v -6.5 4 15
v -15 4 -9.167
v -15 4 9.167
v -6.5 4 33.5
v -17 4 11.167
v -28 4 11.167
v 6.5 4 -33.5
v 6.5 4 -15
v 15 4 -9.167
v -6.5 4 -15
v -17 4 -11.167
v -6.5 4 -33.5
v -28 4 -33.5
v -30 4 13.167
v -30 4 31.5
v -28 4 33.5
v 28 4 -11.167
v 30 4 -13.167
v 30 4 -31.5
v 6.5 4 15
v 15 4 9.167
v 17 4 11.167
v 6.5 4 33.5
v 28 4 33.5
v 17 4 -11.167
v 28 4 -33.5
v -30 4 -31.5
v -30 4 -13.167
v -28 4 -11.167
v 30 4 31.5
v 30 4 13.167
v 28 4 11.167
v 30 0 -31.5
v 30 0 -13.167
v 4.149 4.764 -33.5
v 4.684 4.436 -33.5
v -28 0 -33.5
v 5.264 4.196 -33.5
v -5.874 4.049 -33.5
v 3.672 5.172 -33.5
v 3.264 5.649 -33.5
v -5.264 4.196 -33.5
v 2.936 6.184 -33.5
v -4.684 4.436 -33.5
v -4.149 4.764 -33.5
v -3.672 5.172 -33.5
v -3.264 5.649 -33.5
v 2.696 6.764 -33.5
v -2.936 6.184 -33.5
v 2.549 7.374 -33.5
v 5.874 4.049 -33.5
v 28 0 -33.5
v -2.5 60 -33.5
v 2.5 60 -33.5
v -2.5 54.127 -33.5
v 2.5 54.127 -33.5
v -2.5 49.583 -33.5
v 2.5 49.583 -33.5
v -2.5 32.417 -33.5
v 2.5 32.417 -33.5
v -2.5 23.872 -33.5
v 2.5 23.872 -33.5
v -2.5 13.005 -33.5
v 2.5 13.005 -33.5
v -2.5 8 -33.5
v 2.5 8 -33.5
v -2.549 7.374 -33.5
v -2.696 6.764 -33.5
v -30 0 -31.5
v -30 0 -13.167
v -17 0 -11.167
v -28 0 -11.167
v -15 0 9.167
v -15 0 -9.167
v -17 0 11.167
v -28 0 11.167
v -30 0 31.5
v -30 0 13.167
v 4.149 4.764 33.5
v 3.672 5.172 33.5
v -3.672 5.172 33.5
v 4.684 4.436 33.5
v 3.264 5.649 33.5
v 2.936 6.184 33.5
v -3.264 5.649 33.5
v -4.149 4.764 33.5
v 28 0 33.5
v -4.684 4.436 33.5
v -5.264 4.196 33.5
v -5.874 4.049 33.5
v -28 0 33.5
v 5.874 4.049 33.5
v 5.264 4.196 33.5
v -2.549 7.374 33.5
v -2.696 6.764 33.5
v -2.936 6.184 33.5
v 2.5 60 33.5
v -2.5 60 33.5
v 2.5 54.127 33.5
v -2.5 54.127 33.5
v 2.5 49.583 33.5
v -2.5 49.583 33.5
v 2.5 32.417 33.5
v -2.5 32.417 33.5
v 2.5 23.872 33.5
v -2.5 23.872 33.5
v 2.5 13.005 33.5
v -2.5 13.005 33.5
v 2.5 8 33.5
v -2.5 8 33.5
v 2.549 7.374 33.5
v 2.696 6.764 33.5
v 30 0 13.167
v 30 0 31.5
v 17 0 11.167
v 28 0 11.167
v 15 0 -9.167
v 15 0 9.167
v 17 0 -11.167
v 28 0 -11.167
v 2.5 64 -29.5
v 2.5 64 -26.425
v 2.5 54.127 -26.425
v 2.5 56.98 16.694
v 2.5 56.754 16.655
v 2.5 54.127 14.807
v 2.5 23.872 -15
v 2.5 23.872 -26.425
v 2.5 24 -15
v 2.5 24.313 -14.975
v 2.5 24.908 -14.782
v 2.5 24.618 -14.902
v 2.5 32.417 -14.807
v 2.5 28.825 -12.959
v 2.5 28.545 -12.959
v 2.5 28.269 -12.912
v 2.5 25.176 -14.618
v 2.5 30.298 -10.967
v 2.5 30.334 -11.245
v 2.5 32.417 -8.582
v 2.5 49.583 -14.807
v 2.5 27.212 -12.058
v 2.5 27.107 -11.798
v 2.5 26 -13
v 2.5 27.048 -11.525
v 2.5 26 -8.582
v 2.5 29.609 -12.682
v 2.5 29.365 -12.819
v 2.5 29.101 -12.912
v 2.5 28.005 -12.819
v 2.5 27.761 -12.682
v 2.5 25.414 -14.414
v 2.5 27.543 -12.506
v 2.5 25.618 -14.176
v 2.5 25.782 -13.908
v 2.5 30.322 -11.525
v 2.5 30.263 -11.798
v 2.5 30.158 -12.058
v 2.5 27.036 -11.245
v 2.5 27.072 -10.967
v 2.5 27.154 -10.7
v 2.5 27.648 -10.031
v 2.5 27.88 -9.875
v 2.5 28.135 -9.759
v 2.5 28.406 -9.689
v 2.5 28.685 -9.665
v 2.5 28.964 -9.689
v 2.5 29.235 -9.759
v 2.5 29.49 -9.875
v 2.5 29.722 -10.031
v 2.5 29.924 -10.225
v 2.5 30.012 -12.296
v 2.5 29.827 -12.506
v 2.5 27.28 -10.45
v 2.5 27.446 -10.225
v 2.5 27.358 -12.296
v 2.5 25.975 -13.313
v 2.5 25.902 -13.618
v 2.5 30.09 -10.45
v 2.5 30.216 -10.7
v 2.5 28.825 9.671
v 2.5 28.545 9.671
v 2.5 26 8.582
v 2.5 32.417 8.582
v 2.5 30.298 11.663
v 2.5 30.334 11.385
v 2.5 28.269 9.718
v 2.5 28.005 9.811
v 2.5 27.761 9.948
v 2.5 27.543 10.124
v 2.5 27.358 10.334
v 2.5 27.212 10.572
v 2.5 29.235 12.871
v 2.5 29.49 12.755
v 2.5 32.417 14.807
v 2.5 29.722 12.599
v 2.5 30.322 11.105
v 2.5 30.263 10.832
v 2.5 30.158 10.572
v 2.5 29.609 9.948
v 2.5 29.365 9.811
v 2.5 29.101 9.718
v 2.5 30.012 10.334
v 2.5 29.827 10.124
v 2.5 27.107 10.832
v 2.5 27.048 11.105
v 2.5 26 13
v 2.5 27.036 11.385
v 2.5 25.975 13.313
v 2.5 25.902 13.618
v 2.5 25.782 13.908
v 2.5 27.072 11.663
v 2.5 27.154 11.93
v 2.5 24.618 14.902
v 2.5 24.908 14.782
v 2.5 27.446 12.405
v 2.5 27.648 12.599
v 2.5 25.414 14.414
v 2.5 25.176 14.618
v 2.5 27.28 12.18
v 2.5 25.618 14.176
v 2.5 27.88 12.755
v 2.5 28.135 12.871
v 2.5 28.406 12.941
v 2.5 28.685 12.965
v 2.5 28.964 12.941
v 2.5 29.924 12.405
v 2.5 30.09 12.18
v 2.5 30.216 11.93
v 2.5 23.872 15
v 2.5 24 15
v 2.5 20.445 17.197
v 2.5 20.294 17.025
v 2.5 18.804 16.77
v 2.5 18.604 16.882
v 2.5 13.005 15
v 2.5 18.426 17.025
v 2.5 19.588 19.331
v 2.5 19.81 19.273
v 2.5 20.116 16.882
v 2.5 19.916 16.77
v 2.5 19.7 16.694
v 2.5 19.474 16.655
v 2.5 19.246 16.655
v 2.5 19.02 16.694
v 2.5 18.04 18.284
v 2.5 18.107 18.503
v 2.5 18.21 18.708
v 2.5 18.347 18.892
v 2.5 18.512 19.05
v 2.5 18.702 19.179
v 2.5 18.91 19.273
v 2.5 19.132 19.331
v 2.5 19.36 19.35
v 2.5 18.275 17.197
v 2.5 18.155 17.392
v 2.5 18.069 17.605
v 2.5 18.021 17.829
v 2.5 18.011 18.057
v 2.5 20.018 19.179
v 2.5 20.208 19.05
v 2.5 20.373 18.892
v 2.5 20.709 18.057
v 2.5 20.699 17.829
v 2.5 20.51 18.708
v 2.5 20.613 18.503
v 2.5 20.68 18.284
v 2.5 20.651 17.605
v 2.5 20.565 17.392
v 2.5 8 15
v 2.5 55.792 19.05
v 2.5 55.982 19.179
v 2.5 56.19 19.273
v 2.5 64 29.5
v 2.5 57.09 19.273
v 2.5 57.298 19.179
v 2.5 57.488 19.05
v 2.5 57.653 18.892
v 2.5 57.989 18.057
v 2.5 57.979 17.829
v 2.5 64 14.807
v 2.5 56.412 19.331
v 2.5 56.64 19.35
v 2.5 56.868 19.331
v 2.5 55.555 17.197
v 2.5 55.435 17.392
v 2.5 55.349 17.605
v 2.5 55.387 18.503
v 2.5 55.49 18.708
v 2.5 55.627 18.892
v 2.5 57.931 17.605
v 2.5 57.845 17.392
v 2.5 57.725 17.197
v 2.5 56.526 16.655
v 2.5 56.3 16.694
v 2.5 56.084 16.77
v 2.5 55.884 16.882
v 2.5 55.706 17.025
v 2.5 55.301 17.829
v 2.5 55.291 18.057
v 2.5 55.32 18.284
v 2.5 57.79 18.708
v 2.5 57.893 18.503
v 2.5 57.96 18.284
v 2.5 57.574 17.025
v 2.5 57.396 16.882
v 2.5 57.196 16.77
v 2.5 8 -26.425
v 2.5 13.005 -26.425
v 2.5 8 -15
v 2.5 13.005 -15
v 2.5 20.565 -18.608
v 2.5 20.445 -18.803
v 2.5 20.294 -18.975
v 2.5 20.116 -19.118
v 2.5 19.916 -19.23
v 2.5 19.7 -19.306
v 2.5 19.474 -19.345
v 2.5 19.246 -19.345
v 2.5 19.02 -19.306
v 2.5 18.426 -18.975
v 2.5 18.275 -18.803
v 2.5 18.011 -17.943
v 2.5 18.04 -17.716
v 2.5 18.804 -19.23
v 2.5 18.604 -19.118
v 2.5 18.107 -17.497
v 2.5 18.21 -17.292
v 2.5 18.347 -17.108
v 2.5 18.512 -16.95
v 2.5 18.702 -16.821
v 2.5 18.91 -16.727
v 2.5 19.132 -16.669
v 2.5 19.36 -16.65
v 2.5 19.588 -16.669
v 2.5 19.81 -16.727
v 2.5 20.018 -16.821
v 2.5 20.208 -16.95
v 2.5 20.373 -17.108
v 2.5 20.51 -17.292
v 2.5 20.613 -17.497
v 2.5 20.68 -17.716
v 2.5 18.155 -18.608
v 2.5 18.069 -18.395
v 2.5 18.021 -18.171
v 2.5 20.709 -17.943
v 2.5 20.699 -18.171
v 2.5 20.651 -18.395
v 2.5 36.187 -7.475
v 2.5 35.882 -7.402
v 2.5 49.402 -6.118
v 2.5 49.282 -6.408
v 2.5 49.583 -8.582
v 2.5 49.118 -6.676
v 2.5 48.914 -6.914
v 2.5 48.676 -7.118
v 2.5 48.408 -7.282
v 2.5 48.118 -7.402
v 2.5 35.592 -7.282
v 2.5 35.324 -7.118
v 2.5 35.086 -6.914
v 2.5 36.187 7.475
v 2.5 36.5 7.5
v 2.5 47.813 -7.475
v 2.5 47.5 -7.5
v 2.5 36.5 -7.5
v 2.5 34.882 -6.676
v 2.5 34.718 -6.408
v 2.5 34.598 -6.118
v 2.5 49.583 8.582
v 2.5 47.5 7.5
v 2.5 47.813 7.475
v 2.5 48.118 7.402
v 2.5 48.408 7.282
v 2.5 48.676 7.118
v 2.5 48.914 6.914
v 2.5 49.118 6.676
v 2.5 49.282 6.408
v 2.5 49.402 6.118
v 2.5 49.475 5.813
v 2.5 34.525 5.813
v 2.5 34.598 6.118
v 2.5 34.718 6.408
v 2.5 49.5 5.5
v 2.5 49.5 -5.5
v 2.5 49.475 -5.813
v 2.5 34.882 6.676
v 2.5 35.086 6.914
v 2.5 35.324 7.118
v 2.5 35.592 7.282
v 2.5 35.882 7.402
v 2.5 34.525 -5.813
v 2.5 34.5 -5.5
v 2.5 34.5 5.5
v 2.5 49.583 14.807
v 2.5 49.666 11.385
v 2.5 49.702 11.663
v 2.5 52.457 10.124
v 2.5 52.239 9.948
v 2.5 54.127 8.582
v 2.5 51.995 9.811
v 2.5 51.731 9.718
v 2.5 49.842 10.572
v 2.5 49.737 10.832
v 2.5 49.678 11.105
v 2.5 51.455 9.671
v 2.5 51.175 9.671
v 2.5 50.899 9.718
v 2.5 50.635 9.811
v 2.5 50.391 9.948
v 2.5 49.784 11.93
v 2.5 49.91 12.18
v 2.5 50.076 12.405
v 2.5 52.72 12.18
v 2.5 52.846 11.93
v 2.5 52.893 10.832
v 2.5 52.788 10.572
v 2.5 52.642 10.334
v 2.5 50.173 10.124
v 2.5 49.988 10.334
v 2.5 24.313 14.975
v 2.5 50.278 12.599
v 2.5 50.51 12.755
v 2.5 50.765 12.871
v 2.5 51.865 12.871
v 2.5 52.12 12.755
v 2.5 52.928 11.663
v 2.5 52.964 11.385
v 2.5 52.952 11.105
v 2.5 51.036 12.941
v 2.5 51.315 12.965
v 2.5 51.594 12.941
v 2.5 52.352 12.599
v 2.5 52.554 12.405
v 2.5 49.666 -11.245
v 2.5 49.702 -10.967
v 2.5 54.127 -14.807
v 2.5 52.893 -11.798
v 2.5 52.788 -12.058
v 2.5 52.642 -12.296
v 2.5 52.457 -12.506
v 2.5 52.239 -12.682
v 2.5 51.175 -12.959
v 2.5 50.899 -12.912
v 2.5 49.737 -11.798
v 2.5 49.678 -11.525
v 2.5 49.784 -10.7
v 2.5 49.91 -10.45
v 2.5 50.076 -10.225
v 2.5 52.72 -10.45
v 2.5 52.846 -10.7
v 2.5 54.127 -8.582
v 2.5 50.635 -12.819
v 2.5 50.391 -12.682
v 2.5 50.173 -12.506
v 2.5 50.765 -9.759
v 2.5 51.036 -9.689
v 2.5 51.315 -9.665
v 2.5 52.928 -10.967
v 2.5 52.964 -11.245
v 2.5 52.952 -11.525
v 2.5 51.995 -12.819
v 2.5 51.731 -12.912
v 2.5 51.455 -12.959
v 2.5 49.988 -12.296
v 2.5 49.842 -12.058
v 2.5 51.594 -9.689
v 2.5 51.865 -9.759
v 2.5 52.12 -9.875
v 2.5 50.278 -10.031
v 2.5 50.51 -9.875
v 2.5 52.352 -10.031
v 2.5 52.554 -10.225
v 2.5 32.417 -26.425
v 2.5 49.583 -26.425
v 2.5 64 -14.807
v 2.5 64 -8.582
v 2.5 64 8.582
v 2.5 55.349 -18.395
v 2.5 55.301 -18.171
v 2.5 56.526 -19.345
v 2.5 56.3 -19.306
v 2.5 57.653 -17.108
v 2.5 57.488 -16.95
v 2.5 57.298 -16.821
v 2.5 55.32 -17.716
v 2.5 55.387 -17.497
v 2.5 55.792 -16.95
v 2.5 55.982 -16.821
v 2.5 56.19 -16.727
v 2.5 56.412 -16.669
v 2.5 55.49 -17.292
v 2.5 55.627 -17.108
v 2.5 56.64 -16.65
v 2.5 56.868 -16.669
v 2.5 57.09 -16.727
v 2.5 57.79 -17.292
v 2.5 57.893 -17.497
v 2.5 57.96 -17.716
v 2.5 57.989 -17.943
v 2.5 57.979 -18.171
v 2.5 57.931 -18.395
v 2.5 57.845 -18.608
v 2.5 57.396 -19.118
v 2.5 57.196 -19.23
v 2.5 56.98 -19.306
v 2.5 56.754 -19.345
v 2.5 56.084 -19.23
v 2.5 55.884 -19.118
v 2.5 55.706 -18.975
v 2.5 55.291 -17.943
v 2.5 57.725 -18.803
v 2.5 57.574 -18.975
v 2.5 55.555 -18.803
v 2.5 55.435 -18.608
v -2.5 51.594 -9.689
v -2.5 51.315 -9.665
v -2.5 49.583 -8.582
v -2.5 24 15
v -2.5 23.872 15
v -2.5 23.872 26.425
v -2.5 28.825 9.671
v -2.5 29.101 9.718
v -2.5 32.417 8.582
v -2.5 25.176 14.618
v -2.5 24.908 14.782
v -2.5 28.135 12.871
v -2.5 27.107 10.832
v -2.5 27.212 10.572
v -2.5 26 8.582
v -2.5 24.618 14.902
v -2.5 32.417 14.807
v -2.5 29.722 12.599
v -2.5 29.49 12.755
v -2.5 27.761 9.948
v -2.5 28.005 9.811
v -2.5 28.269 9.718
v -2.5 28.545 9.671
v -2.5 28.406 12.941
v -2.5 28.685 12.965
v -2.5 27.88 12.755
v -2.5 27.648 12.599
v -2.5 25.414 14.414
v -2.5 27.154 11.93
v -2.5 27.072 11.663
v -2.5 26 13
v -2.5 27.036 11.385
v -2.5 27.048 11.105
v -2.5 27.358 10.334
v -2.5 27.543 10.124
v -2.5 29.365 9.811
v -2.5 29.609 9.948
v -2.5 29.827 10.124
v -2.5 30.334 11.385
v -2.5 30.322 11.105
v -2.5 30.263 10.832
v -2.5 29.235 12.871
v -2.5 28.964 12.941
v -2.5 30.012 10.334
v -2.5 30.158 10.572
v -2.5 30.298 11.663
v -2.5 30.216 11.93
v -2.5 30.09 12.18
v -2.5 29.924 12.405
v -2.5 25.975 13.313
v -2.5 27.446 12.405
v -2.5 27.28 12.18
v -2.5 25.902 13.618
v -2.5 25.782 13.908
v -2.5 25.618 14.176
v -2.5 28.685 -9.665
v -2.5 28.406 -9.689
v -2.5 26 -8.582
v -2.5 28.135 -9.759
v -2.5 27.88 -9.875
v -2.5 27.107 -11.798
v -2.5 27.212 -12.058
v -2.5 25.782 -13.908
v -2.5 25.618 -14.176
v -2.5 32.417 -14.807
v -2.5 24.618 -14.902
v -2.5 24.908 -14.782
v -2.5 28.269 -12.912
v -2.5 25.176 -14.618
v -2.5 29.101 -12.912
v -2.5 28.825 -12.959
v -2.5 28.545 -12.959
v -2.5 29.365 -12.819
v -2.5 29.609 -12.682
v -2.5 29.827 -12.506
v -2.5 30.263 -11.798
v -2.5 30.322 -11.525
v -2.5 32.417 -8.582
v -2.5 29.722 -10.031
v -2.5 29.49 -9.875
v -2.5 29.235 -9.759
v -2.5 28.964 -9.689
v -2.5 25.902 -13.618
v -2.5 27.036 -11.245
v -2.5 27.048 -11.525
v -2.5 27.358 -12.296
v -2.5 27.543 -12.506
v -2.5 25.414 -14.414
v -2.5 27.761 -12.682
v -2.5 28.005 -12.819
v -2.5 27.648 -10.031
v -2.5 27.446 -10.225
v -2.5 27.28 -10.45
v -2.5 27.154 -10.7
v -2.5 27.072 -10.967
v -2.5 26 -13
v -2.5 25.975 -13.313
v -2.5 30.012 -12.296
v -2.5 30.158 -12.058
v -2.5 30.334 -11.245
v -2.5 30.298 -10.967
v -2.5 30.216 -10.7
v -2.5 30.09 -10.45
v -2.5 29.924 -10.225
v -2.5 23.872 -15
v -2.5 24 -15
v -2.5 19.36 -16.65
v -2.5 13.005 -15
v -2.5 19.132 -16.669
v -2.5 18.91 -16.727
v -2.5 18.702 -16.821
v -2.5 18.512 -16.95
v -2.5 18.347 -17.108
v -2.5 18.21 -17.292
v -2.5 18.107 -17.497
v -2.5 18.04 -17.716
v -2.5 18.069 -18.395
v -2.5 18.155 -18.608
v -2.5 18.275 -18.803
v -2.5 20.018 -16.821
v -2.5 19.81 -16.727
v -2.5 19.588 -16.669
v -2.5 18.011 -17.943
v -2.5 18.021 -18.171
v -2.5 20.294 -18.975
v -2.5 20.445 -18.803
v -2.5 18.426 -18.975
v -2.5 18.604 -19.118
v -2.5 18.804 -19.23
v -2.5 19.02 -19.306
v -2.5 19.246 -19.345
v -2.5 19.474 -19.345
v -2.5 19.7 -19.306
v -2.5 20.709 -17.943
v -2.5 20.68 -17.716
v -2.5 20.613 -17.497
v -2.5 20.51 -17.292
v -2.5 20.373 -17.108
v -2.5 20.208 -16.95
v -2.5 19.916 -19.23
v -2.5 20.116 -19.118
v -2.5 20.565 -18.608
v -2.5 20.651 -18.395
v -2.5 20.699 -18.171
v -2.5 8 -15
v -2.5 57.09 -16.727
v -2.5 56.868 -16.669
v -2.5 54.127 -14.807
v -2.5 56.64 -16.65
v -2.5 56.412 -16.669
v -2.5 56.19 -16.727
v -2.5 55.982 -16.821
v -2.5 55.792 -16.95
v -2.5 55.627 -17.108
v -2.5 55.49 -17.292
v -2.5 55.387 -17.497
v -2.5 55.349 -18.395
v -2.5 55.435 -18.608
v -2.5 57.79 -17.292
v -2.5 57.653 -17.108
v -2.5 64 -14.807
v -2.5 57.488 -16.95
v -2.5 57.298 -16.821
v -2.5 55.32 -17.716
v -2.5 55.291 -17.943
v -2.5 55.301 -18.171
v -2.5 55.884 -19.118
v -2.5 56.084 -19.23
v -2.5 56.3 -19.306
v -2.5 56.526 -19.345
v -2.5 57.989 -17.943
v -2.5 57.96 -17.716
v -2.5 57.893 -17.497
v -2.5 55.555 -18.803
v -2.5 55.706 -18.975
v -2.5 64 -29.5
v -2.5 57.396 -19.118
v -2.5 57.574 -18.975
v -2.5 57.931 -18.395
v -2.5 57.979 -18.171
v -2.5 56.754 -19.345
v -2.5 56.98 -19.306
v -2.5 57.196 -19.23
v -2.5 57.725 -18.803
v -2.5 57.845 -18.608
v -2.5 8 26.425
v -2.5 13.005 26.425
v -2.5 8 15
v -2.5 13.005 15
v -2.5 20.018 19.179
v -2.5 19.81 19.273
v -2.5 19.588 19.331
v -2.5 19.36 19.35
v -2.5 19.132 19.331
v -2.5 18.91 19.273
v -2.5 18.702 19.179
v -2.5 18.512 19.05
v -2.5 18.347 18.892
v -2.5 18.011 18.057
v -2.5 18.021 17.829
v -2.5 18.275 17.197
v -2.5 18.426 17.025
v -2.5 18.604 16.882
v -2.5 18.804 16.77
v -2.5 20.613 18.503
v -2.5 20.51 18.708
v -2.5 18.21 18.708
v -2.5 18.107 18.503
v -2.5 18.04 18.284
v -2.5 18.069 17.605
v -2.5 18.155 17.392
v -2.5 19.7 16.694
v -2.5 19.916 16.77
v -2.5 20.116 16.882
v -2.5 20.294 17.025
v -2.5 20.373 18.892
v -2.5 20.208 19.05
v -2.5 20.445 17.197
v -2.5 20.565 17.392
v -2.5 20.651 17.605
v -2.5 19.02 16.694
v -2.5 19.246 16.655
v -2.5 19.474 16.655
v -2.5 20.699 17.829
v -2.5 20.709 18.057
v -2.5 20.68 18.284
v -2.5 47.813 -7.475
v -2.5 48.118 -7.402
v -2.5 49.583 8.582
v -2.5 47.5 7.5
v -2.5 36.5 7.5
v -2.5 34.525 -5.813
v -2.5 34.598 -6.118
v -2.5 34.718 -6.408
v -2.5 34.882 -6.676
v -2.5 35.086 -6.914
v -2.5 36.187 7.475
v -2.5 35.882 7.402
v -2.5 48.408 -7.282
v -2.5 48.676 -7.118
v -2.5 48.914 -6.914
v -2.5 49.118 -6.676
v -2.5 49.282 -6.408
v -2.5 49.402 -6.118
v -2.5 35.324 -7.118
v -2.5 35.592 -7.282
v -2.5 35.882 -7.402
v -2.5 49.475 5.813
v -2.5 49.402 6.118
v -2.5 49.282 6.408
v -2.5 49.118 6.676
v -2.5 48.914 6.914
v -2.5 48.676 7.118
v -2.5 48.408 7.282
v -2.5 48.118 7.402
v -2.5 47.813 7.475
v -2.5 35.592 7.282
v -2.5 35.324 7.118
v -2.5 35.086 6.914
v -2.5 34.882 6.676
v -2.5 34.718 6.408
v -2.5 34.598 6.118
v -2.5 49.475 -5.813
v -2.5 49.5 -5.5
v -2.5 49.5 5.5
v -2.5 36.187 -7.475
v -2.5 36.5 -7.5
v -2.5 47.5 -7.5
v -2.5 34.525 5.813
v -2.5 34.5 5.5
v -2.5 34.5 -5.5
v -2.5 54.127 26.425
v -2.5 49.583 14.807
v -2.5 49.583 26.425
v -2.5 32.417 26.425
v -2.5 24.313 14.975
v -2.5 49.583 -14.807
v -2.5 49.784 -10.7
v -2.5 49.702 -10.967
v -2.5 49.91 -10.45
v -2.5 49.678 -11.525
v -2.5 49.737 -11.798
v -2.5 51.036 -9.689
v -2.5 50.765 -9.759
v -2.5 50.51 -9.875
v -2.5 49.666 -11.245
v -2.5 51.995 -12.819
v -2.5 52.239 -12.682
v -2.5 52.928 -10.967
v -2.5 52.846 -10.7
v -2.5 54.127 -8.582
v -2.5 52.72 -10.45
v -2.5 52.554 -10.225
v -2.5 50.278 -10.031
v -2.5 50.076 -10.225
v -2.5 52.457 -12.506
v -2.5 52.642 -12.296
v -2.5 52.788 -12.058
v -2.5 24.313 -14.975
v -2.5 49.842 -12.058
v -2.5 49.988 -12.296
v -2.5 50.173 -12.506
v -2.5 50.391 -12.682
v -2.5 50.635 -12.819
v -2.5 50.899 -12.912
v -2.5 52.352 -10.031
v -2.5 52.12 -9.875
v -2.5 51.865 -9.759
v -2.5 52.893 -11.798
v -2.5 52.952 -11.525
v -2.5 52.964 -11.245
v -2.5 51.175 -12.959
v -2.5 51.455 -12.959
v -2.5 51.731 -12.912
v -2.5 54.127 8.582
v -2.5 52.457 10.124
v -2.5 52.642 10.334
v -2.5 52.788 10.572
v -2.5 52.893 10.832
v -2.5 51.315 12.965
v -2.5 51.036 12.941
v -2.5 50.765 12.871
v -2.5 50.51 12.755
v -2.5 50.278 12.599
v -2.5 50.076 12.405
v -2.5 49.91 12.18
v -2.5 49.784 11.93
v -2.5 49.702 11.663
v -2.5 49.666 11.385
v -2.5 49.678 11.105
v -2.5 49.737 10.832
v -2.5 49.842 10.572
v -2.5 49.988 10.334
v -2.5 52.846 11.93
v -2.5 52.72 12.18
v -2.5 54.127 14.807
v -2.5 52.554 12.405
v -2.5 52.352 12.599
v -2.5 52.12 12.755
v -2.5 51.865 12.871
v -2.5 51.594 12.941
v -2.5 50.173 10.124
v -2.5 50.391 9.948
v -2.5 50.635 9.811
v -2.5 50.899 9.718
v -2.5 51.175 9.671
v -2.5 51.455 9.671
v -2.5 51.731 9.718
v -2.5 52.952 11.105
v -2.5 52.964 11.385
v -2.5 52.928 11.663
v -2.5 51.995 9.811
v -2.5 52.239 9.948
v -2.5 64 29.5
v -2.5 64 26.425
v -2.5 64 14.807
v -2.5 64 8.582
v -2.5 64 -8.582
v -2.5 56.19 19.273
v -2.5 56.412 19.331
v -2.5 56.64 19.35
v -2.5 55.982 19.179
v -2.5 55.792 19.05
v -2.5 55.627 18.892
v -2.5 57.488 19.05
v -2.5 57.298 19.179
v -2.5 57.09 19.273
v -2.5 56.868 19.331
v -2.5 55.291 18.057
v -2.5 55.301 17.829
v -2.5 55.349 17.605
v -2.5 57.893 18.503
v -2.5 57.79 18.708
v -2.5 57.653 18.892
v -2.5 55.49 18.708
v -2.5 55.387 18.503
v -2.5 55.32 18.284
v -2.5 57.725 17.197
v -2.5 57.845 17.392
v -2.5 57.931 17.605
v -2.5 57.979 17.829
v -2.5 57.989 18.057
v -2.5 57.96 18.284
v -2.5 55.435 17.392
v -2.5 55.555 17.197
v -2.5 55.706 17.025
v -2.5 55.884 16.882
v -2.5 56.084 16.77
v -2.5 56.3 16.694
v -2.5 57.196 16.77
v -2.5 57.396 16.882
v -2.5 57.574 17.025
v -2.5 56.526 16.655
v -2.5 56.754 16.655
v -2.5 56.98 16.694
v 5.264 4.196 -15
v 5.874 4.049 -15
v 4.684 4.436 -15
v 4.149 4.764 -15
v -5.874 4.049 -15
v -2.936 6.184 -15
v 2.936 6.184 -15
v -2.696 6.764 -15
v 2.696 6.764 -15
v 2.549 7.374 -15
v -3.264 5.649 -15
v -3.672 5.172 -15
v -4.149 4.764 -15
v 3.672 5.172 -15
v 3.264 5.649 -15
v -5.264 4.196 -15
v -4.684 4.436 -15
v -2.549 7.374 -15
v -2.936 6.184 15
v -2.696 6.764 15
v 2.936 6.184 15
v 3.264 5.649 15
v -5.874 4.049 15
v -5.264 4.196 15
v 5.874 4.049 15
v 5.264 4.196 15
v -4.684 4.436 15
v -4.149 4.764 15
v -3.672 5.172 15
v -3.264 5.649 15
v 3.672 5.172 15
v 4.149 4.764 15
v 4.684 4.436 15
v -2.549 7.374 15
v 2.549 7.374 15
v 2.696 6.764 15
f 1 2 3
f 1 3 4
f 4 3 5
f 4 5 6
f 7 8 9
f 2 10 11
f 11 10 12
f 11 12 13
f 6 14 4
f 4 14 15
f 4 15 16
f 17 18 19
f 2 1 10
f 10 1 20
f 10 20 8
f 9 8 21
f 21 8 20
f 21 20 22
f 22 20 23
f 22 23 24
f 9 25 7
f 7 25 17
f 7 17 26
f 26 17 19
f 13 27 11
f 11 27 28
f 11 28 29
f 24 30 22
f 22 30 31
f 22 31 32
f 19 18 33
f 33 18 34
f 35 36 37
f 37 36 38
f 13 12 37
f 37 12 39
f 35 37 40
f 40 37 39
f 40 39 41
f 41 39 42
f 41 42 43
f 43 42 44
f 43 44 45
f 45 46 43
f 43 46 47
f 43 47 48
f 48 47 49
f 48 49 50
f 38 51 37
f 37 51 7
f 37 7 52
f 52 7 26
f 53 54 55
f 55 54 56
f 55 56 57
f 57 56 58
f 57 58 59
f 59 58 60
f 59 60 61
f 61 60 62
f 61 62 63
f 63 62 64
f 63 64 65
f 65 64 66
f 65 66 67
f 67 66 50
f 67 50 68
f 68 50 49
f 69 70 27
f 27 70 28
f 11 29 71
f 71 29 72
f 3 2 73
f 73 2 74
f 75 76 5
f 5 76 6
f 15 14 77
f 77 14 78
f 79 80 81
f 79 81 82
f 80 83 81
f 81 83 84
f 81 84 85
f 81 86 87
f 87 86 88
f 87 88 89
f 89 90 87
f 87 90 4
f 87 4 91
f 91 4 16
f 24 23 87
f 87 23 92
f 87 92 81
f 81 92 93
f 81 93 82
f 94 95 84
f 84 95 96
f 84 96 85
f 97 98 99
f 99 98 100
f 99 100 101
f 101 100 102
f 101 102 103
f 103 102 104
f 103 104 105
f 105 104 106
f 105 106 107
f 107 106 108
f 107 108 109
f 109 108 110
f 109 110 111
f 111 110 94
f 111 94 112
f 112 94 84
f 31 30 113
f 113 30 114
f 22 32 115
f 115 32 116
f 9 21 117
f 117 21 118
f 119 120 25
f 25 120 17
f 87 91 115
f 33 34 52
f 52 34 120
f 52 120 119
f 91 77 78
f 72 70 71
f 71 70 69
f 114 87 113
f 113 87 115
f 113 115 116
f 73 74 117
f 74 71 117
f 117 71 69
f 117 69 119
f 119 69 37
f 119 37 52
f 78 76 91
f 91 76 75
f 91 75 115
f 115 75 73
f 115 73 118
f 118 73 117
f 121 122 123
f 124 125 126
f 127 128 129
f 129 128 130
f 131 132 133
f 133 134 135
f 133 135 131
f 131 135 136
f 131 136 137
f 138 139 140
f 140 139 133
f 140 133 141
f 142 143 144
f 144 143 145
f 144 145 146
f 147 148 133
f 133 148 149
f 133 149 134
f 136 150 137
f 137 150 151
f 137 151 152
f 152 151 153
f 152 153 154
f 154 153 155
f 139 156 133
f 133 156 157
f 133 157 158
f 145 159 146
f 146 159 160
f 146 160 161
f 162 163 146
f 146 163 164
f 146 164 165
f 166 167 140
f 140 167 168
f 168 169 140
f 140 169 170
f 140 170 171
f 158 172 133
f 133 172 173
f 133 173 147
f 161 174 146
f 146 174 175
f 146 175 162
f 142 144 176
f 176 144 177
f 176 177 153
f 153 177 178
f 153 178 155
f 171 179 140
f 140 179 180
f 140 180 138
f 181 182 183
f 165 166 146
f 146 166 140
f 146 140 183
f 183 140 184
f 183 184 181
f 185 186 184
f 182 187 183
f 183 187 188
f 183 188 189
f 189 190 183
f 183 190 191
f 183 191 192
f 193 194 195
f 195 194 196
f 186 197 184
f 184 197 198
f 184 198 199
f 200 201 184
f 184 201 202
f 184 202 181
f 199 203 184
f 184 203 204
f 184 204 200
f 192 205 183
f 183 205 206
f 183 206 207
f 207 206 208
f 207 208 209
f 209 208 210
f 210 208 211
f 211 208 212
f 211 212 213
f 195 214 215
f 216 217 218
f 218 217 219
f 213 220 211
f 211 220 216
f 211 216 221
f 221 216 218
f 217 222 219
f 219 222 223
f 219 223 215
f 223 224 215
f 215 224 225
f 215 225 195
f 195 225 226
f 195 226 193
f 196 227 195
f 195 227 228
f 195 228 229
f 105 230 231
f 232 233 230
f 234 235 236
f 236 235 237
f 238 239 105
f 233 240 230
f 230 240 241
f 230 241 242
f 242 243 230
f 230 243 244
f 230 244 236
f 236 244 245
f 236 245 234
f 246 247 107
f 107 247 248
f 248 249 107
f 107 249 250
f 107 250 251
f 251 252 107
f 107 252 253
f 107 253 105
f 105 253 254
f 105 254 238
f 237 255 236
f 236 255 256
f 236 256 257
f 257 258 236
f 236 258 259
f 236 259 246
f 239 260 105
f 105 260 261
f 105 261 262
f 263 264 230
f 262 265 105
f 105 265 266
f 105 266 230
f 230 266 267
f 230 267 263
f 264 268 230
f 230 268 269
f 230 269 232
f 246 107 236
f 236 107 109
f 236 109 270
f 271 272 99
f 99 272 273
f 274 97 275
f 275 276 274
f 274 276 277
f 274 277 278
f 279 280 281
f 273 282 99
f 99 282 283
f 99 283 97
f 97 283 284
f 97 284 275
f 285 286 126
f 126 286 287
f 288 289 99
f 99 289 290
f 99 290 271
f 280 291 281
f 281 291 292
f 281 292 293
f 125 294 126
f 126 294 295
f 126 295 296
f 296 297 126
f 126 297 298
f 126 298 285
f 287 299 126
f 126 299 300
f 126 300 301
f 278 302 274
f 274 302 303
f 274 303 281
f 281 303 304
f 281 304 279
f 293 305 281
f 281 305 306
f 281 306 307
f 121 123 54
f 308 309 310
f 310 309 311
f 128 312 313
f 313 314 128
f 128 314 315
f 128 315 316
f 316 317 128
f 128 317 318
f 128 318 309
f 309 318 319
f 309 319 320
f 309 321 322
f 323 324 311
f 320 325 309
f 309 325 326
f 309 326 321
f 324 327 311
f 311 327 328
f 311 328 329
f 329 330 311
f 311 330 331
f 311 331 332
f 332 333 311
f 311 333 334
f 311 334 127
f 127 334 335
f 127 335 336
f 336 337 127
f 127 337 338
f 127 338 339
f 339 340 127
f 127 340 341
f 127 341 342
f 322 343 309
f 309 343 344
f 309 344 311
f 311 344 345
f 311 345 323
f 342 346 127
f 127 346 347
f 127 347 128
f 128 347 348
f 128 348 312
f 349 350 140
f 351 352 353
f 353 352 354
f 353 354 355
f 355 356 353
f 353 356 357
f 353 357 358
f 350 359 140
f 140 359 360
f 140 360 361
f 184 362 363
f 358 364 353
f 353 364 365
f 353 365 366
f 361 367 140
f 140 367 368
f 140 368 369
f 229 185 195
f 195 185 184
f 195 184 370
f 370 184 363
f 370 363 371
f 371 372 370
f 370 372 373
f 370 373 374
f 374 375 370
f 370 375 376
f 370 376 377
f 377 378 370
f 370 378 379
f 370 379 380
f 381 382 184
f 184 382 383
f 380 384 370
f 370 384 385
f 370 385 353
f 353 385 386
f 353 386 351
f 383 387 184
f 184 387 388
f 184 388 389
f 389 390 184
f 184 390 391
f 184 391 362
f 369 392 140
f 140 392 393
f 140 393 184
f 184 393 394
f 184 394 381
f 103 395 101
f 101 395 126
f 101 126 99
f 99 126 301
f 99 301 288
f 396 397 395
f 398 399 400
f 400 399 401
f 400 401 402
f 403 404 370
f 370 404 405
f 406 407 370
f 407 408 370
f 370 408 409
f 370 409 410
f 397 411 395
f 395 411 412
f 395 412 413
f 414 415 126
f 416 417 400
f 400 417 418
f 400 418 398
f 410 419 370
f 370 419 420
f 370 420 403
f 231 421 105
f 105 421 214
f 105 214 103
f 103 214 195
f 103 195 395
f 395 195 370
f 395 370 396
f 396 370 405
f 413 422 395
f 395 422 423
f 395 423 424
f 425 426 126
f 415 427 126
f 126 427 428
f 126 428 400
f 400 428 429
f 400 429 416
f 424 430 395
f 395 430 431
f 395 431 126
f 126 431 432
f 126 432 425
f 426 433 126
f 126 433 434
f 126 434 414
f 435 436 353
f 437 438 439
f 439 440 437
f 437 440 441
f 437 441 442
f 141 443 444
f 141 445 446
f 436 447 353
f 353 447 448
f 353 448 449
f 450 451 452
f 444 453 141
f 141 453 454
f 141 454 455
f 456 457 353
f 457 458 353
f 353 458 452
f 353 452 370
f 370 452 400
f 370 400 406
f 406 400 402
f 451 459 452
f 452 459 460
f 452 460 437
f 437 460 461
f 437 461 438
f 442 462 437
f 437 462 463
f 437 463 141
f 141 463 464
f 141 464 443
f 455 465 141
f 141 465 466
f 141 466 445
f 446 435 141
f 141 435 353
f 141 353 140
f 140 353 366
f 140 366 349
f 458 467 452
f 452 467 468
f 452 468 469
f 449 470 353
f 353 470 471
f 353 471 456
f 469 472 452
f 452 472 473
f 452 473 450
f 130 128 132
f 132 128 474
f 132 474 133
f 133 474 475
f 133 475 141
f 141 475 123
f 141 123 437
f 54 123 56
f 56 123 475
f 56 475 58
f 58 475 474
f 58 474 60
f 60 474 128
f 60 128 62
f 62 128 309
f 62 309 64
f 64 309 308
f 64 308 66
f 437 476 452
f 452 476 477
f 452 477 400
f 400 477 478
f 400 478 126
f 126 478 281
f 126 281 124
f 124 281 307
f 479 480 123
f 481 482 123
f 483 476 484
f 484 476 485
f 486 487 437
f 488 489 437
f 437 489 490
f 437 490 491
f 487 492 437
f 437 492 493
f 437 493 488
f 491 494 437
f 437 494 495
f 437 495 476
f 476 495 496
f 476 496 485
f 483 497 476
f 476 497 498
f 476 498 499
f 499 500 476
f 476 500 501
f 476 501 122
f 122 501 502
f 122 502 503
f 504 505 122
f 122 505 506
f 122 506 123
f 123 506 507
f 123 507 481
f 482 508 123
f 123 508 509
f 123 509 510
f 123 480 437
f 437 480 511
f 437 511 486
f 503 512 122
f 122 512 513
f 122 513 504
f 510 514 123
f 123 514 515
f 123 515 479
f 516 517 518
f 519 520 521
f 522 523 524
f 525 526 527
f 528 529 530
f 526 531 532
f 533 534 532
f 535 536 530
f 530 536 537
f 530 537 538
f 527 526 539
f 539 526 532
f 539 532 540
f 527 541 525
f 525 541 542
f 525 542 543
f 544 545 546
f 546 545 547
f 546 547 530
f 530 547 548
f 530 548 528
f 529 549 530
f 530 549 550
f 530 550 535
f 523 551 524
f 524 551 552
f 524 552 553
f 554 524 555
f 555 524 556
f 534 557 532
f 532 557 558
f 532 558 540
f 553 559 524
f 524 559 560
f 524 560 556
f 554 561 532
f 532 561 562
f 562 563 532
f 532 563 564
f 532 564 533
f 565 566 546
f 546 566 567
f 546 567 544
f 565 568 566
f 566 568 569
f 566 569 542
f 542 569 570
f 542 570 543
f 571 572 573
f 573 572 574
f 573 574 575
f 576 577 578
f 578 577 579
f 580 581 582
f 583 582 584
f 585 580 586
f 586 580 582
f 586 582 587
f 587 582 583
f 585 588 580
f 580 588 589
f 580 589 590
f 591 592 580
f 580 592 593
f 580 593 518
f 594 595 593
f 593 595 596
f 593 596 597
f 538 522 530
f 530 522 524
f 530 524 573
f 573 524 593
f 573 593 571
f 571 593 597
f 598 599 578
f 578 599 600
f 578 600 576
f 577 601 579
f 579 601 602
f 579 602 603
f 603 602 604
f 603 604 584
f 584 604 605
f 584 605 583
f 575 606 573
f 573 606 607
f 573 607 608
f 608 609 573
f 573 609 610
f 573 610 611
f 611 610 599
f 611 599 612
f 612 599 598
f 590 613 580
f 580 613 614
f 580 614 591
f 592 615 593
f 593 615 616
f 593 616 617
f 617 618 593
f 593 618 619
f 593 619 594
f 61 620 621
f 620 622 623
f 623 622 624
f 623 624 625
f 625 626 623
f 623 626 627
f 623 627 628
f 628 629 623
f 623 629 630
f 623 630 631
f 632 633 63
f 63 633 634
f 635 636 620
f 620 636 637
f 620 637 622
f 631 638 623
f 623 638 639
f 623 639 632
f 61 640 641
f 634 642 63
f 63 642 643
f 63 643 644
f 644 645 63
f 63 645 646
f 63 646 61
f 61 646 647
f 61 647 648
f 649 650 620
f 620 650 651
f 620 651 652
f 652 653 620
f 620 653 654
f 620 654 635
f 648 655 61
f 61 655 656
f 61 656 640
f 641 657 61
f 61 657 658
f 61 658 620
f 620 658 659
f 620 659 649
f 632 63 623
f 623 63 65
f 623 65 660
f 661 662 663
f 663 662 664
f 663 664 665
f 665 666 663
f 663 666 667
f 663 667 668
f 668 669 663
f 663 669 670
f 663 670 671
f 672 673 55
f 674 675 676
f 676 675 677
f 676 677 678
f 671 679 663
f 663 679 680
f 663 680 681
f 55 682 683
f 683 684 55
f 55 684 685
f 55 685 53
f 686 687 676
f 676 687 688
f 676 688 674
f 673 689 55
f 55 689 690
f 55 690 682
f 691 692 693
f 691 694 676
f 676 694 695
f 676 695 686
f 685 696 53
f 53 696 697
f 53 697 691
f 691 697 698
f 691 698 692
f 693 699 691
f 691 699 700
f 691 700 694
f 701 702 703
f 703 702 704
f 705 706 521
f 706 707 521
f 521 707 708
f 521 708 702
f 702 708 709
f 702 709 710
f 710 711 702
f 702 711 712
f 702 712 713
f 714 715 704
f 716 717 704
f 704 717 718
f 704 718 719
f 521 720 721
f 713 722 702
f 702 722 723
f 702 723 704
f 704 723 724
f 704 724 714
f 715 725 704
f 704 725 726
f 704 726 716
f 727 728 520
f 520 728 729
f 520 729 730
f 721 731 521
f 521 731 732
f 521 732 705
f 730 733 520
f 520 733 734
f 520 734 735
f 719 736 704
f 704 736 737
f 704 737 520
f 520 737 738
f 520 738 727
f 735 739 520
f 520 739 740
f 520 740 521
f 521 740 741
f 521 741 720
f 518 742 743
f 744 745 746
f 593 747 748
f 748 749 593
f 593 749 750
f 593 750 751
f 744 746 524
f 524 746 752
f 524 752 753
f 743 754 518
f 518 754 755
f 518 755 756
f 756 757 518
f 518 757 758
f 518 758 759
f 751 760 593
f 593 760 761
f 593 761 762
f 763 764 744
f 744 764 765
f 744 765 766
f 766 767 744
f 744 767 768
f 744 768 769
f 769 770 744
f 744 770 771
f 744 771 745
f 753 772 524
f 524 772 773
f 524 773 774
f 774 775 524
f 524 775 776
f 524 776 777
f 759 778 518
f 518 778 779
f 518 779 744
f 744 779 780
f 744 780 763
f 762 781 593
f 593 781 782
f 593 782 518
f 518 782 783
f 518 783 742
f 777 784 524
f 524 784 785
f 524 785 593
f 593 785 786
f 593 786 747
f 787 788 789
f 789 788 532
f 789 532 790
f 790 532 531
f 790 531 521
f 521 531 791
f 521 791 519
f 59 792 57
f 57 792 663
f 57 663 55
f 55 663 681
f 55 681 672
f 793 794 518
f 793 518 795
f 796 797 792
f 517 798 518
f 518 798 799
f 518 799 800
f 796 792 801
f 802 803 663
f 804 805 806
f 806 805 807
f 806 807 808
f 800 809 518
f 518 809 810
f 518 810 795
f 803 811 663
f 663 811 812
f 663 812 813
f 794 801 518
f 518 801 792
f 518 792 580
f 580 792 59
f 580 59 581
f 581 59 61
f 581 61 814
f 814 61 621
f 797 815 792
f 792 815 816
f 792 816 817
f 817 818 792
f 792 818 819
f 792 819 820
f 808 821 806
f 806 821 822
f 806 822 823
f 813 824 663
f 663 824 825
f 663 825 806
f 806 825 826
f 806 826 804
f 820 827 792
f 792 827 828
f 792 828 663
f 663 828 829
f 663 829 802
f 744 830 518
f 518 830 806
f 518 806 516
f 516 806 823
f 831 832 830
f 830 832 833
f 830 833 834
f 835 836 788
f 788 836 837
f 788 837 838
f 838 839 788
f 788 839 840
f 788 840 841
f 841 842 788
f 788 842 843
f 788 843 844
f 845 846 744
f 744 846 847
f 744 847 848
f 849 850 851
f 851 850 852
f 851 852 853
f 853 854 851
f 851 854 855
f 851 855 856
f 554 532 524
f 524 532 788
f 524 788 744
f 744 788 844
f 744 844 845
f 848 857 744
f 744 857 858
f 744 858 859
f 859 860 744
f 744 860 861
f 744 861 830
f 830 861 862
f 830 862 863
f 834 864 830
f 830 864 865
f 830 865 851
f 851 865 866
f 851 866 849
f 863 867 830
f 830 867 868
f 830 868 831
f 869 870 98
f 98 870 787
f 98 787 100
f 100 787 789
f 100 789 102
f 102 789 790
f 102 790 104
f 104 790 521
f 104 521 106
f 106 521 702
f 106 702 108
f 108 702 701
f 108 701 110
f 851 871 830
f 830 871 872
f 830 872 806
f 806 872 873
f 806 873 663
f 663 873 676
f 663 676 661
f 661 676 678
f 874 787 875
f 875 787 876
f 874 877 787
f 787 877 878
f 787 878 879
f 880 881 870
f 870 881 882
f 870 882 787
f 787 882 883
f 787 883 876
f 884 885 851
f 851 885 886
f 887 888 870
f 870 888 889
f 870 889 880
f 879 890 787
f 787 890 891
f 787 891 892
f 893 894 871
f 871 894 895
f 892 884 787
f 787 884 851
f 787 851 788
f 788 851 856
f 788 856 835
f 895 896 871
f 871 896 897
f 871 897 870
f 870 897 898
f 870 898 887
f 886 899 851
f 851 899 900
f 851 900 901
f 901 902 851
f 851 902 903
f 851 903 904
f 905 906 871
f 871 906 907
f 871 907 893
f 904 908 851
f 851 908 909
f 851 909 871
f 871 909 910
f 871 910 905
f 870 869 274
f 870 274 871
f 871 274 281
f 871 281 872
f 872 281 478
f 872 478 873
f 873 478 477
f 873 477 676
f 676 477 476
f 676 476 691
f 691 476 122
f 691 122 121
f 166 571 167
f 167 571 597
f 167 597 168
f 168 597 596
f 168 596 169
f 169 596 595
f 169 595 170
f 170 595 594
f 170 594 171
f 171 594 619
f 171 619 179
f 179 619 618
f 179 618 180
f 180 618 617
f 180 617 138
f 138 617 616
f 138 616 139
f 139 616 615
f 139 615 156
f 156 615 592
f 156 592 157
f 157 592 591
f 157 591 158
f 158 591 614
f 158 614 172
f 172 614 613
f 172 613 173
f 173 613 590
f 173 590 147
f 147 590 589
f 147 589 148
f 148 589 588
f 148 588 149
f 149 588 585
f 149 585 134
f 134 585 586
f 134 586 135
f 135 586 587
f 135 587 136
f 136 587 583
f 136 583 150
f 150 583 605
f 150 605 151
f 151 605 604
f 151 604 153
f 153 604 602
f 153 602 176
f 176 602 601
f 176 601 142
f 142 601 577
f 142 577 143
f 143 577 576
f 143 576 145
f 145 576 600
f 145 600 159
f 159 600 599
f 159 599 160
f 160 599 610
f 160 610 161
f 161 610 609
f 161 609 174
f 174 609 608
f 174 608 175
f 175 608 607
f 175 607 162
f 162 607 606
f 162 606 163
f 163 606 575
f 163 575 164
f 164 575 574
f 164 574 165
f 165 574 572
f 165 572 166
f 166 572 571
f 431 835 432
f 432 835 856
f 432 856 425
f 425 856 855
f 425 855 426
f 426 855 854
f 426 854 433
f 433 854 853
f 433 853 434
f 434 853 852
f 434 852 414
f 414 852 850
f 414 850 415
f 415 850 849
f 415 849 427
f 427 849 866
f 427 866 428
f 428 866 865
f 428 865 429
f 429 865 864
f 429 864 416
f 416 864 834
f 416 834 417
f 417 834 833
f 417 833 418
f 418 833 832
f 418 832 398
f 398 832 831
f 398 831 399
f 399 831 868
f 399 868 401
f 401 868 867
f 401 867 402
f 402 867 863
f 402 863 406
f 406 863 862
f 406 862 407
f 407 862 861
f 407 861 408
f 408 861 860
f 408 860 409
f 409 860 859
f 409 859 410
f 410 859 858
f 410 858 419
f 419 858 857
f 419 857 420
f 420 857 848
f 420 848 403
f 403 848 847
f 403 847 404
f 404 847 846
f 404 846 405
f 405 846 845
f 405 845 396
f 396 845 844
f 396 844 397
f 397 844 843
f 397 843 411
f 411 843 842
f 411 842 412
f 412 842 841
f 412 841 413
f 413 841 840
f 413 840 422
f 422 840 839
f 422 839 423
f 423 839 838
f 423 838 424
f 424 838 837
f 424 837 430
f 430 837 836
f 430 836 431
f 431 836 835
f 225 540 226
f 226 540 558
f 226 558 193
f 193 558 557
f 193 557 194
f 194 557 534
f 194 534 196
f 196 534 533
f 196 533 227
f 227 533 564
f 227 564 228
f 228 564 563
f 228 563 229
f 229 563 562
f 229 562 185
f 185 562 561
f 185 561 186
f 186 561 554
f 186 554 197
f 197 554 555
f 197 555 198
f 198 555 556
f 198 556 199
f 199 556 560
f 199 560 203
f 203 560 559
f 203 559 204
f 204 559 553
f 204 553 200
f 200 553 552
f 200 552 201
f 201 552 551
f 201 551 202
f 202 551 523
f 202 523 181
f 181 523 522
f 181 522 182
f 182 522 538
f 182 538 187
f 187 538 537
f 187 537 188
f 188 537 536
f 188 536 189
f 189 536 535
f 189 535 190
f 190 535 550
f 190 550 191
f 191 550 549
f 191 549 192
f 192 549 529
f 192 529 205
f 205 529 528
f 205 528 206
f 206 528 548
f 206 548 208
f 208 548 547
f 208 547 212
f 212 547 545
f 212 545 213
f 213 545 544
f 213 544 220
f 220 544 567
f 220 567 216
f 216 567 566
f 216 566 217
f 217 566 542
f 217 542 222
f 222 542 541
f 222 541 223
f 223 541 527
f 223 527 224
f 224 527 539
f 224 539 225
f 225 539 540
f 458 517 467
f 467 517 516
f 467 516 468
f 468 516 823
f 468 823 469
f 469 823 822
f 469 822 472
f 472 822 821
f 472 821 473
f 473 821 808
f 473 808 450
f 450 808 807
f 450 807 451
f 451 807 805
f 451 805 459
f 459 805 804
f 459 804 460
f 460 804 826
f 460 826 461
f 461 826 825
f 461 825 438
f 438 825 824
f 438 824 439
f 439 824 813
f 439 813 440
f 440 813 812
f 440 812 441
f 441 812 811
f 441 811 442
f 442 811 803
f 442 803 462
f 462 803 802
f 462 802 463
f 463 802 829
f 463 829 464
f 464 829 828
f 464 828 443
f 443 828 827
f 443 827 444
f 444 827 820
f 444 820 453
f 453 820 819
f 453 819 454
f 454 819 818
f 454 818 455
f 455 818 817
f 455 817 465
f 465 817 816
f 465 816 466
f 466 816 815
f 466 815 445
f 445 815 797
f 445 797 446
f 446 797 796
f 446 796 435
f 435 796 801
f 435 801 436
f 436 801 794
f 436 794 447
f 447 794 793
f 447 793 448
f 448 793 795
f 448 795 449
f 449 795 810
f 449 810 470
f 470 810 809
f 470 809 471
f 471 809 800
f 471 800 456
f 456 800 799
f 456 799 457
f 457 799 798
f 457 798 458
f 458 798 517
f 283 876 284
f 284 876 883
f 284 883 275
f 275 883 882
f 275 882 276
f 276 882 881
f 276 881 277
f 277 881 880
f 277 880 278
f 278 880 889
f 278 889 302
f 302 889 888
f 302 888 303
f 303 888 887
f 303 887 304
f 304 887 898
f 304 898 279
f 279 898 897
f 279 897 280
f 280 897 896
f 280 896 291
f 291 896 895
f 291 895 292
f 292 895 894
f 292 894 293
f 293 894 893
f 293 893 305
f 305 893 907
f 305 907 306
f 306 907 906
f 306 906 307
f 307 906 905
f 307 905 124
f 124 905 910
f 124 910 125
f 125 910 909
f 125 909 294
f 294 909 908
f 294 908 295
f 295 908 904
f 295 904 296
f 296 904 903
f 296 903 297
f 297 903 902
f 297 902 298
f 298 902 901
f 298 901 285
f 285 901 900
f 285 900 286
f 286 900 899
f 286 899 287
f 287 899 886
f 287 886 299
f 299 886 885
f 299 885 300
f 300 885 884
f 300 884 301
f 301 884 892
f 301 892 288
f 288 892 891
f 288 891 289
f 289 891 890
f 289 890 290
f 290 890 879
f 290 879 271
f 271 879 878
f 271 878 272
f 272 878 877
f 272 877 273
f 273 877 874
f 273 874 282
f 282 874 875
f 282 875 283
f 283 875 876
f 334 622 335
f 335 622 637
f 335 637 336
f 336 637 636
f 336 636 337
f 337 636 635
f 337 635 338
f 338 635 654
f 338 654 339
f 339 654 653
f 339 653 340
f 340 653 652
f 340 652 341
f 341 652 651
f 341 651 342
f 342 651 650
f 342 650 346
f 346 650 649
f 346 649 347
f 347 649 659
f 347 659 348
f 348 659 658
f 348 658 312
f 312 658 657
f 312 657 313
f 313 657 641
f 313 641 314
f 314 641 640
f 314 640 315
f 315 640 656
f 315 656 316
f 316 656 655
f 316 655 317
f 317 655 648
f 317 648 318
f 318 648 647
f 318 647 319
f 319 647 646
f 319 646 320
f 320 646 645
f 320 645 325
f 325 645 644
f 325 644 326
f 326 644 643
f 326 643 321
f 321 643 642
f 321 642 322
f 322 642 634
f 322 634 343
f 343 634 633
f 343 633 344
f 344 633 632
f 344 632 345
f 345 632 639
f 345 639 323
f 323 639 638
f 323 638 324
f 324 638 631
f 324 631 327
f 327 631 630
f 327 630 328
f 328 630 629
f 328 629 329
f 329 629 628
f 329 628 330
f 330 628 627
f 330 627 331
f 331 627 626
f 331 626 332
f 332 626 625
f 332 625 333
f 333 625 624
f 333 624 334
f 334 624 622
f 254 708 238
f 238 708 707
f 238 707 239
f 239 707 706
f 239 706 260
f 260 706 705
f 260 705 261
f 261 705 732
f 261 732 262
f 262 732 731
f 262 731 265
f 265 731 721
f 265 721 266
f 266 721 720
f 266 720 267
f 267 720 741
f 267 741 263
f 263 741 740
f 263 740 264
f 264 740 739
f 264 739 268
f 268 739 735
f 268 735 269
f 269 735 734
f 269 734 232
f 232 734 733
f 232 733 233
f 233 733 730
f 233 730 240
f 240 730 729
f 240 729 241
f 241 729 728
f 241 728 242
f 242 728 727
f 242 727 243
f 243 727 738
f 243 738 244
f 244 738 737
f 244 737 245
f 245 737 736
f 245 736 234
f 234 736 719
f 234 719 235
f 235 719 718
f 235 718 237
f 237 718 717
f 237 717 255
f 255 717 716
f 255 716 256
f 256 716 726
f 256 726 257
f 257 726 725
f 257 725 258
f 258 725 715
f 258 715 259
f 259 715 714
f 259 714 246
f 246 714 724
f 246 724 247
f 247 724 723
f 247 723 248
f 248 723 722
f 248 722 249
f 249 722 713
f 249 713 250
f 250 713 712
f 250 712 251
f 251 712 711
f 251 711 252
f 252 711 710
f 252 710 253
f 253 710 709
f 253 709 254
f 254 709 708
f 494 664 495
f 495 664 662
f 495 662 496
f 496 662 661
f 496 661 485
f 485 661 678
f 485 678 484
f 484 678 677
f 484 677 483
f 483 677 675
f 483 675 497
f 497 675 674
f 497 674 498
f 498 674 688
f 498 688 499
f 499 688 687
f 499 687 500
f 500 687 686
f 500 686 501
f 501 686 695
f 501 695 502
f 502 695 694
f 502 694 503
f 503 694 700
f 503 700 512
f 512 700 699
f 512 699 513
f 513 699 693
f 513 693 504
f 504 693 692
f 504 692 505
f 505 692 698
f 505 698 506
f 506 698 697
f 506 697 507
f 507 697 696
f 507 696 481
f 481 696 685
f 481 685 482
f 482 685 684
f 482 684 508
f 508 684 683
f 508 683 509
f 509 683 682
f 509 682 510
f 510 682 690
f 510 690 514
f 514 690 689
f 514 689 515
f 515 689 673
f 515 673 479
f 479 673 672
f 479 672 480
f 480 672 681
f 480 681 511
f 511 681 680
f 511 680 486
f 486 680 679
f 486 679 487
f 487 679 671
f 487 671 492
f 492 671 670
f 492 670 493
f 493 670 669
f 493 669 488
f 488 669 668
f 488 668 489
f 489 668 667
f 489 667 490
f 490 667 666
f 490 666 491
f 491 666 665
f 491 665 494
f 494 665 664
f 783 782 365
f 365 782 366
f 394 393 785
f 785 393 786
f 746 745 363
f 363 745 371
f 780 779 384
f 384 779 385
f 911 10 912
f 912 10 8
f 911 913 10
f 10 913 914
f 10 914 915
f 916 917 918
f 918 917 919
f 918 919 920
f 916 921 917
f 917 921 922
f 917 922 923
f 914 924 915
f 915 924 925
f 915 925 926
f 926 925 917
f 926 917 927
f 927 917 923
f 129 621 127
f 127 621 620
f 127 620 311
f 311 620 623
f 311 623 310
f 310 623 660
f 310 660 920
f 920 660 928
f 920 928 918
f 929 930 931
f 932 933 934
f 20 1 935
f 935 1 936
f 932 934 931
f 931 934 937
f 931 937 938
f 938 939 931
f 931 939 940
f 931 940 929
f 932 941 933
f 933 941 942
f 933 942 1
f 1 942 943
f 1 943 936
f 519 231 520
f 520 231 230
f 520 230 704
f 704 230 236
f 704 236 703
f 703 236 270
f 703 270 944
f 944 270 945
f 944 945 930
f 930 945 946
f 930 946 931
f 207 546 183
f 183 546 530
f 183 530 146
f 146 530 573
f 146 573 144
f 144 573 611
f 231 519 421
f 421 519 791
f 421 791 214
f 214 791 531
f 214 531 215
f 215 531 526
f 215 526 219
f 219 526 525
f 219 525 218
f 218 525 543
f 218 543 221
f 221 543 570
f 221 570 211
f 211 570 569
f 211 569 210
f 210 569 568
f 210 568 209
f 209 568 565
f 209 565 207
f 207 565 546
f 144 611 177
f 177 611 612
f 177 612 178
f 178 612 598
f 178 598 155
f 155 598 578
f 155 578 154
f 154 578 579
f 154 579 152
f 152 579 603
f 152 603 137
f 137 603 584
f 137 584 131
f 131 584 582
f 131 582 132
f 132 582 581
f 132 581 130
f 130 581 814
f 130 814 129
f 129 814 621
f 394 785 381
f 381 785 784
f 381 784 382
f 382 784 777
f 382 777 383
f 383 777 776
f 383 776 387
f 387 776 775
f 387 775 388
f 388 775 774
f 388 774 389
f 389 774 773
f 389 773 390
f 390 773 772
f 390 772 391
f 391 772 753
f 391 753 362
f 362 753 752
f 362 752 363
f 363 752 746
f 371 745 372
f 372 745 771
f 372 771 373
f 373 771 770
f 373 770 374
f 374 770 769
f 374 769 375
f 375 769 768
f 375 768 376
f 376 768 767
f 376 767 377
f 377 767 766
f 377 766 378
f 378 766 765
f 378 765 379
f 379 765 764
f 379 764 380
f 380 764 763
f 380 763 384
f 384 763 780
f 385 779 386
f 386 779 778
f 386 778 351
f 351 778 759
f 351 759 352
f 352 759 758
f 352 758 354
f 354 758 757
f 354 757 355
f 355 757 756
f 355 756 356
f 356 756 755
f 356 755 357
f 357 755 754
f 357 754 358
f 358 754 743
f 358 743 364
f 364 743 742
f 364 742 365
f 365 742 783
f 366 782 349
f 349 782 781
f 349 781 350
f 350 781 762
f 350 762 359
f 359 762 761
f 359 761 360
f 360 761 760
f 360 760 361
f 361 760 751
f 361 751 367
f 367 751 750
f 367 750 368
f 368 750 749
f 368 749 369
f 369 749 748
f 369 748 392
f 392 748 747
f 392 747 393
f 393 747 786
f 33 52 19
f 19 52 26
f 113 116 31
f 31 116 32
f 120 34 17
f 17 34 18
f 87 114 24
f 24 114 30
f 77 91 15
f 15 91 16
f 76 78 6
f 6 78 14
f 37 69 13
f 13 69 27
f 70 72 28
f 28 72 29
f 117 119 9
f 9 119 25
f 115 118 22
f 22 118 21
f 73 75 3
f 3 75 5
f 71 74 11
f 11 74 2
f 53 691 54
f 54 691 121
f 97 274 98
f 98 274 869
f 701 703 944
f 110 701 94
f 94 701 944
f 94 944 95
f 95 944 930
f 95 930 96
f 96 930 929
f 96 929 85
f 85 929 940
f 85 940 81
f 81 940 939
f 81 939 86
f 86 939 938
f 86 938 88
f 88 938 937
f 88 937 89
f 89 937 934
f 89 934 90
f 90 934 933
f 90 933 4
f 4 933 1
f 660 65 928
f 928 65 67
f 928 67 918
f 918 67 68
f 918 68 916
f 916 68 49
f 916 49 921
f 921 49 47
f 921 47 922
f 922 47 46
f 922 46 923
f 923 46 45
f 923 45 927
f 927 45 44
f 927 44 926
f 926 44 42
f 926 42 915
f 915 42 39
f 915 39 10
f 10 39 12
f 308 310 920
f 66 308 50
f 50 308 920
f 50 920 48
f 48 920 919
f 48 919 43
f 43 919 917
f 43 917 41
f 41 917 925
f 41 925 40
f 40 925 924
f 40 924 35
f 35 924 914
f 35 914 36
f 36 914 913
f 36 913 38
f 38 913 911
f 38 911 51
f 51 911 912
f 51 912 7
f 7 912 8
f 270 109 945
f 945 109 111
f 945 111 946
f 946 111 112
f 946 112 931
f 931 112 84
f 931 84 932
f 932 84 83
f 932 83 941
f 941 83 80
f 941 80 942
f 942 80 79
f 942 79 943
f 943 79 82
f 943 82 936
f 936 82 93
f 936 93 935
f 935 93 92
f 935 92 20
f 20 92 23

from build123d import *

# Parameters (mm, degrees)
BOSS_EXTRUDE1_DEPTH = 4
SKETCH2_W           = 5
SKETCH2_H           = 67
BOSS_EXTRUDE2_DEPTH = 60
SKETCH3_R           = 1.65
CUT_EXTRUDE1_DEPTH  = 33.5
SKETCH6_R           = 1.35
CUT_EXTRUDE3_DEPTH  = 33.5
SKETCH8_W           = 15
SKETCH8_H           = 15
CUT_EXTRUDE4_DEPTH  = 33.5
SKETCH9_W           = 30
SKETCH9_H           = 22
CUT_EXTRUDE5_DEPTH  = 33.5
FILLET1_R           = 2
FILLET2_R           = 2
CHAMFER1_SIZE       = 2
CHAMFER2_SIZE       = 2
CHAMFER3_SIZE       = 4
FILLET4_R           = 4


with BuildPart() as part:
    # Sketch1 → Boss-Extrude1 (new body)
    with BuildSketch(Plane(origin=(0, 0, 0), x_dir=(1, 0, 0), z_dir=(0, 1, 0))):
        Polygon((-30, 33.5), (30, 33.5), (30, 11.166666667), (15, 11.166666667), (15, -11.166666667), (30, -11.166666667), (30, -33.5), (-30, -33.5), (-30, -11.166666667), (-15, -11.166666667), (-15, 11.166666667), (-30, 11.166666667), align=None)
    extrude(amount=BOSS_EXTRUDE1_DEPTH)

    # Sketch2 → Boss-Extrude2 (add)
    with BuildSketch(Plane(origin=(0, 4, 0), x_dir=(1, 0, 0), z_dir=(0, 1, 0))):
        Rectangle(SKETCH2_W, SKETCH2_H)
    extrude(amount=BOSS_EXTRUDE2_DEPTH)

    # Sketch3 → Cut-Extrude1 (cut, through all)
    with BuildSketch(Plane.ZY.offset(2.5)):
        with Locations((-11.315, 51.315)):
            Circle(SKETCH3_R)
        with Locations((-11.315, 28.685)):
            Circle(SKETCH3_R)
        with Locations((11.315, 28.685)):
            Circle(SKETCH3_R)
        with Locations((11.315, 51.315)):
            Circle(SKETCH3_R)
    extrude(amount=-CUT_EXTRUDE1_DEPTH, mode=Mode.SUBTRACT)

    # Sketch6 → Cut-Extrude3 (cut, through all)
    with BuildSketch(Plane.ZY.offset(2.5)):
        with Locations((-18, 56.64)):
            Circle(SKETCH6_R)
        with Locations((18, 56.64)):
            Circle(SKETCH6_R)
        with Locations((18, 19.36)):
            Circle(SKETCH6_R)
        with Locations((-18, 19.36)):
            Circle(SKETCH6_R)
    extrude(amount=-CUT_EXTRUDE3_DEPTH, mode=Mode.SUBTRACT)

    # Sketch8 → Cut-Extrude4 (cut, through all)
    with BuildSketch(Plane(origin=(2.5, 0, 0), x_dir=(0, 0, -1), z_dir=(1, 0, 0))):
        with Locations((0, 42)):
            Rectangle(SKETCH8_W, SKETCH8_H)
    extrude(amount=-CUT_EXTRUDE4_DEPTH, mode=Mode.SUBTRACT)

    # Sketch9 → Cut-Extrude5 (cut, through all)
    with BuildSketch(Plane(origin=(2.5, 0, 0), x_dir=(0, 0, -1), z_dir=(1, 0, 0))):
        with Locations((0, 15)):
            Rectangle(SKETCH9_W, SKETCH9_H)
    extrude(amount=-CUT_EXTRUDE5_DEPTH, mode=Mode.SUBTRACT)

    # Fillet1
    fillet1_edges = [part.edges().sort_by_distance(p)[0] for p in [
        (0, 26, -15),
        (0, 26, 15),
    ]]
    fillet(fillet1_edges, radius=FILLET1_R)

    # Fillet2
    fillet2_edges = [part.edges().sort_by_distance(p)[0] for p in [
        (0, 49.5, -7.5),
        (0, 34.5, -7.5),
        (0, 34.5, 7.5),
        (0, 49.5, 7.5),
    ]]
    fillet(fillet2_edges, radius=FILLET2_R)

    # Chamfer1
    chamfer1_edges = [part.edges().sort_by_distance(p)[0] for p in [
        (30, 2, -11.166666667),
        (30, 2, 11.166666667),
        (30, 2, 33.5),
        (-30, 2, 33.5),
        (-30, 2, 11.166666667),
        (-30, 2, -11.166666667),
        (-30, 2, -33.5),
        (30, 2, -33.5),
    ]]
    chamfer(chamfer1_edges, length=CHAMFER1_SIZE)

    # Chamfer2
    chamfer2_edges = [part.edges().sort_by_distance(p)[0] for p in [
        (15, 2, -11.166666667),
        (15, 2, 11.166666667),
        (-15, 2, 11.166666667),
        (-15, 2, -11.166666667),
    ]]
    chamfer(chamfer2_edges, length=CHAMFER2_SIZE)

    # Chamfer3
    chamfer3_edges = [part.edges().sort_by_distance(p)[0] for p in [
        (0, 64, -33.5),
        (0, 64, 33.5),
    ]]
    chamfer(chamfer3_edges, length=CHAMFER3_SIZE)

    # Fillet4
    fillet4_edges = [part.edges().sort_by_distance(p)[0] for p in [
        (-2.5, 4, 24.25),
        (2.5, 4, -24.25),
        (2.5, 4, 24.25),
        (-2.5, 4, -24.25),
    ]]
    fillet(fillet4_edges, radius=FILLET4_R)


solid = part.part
